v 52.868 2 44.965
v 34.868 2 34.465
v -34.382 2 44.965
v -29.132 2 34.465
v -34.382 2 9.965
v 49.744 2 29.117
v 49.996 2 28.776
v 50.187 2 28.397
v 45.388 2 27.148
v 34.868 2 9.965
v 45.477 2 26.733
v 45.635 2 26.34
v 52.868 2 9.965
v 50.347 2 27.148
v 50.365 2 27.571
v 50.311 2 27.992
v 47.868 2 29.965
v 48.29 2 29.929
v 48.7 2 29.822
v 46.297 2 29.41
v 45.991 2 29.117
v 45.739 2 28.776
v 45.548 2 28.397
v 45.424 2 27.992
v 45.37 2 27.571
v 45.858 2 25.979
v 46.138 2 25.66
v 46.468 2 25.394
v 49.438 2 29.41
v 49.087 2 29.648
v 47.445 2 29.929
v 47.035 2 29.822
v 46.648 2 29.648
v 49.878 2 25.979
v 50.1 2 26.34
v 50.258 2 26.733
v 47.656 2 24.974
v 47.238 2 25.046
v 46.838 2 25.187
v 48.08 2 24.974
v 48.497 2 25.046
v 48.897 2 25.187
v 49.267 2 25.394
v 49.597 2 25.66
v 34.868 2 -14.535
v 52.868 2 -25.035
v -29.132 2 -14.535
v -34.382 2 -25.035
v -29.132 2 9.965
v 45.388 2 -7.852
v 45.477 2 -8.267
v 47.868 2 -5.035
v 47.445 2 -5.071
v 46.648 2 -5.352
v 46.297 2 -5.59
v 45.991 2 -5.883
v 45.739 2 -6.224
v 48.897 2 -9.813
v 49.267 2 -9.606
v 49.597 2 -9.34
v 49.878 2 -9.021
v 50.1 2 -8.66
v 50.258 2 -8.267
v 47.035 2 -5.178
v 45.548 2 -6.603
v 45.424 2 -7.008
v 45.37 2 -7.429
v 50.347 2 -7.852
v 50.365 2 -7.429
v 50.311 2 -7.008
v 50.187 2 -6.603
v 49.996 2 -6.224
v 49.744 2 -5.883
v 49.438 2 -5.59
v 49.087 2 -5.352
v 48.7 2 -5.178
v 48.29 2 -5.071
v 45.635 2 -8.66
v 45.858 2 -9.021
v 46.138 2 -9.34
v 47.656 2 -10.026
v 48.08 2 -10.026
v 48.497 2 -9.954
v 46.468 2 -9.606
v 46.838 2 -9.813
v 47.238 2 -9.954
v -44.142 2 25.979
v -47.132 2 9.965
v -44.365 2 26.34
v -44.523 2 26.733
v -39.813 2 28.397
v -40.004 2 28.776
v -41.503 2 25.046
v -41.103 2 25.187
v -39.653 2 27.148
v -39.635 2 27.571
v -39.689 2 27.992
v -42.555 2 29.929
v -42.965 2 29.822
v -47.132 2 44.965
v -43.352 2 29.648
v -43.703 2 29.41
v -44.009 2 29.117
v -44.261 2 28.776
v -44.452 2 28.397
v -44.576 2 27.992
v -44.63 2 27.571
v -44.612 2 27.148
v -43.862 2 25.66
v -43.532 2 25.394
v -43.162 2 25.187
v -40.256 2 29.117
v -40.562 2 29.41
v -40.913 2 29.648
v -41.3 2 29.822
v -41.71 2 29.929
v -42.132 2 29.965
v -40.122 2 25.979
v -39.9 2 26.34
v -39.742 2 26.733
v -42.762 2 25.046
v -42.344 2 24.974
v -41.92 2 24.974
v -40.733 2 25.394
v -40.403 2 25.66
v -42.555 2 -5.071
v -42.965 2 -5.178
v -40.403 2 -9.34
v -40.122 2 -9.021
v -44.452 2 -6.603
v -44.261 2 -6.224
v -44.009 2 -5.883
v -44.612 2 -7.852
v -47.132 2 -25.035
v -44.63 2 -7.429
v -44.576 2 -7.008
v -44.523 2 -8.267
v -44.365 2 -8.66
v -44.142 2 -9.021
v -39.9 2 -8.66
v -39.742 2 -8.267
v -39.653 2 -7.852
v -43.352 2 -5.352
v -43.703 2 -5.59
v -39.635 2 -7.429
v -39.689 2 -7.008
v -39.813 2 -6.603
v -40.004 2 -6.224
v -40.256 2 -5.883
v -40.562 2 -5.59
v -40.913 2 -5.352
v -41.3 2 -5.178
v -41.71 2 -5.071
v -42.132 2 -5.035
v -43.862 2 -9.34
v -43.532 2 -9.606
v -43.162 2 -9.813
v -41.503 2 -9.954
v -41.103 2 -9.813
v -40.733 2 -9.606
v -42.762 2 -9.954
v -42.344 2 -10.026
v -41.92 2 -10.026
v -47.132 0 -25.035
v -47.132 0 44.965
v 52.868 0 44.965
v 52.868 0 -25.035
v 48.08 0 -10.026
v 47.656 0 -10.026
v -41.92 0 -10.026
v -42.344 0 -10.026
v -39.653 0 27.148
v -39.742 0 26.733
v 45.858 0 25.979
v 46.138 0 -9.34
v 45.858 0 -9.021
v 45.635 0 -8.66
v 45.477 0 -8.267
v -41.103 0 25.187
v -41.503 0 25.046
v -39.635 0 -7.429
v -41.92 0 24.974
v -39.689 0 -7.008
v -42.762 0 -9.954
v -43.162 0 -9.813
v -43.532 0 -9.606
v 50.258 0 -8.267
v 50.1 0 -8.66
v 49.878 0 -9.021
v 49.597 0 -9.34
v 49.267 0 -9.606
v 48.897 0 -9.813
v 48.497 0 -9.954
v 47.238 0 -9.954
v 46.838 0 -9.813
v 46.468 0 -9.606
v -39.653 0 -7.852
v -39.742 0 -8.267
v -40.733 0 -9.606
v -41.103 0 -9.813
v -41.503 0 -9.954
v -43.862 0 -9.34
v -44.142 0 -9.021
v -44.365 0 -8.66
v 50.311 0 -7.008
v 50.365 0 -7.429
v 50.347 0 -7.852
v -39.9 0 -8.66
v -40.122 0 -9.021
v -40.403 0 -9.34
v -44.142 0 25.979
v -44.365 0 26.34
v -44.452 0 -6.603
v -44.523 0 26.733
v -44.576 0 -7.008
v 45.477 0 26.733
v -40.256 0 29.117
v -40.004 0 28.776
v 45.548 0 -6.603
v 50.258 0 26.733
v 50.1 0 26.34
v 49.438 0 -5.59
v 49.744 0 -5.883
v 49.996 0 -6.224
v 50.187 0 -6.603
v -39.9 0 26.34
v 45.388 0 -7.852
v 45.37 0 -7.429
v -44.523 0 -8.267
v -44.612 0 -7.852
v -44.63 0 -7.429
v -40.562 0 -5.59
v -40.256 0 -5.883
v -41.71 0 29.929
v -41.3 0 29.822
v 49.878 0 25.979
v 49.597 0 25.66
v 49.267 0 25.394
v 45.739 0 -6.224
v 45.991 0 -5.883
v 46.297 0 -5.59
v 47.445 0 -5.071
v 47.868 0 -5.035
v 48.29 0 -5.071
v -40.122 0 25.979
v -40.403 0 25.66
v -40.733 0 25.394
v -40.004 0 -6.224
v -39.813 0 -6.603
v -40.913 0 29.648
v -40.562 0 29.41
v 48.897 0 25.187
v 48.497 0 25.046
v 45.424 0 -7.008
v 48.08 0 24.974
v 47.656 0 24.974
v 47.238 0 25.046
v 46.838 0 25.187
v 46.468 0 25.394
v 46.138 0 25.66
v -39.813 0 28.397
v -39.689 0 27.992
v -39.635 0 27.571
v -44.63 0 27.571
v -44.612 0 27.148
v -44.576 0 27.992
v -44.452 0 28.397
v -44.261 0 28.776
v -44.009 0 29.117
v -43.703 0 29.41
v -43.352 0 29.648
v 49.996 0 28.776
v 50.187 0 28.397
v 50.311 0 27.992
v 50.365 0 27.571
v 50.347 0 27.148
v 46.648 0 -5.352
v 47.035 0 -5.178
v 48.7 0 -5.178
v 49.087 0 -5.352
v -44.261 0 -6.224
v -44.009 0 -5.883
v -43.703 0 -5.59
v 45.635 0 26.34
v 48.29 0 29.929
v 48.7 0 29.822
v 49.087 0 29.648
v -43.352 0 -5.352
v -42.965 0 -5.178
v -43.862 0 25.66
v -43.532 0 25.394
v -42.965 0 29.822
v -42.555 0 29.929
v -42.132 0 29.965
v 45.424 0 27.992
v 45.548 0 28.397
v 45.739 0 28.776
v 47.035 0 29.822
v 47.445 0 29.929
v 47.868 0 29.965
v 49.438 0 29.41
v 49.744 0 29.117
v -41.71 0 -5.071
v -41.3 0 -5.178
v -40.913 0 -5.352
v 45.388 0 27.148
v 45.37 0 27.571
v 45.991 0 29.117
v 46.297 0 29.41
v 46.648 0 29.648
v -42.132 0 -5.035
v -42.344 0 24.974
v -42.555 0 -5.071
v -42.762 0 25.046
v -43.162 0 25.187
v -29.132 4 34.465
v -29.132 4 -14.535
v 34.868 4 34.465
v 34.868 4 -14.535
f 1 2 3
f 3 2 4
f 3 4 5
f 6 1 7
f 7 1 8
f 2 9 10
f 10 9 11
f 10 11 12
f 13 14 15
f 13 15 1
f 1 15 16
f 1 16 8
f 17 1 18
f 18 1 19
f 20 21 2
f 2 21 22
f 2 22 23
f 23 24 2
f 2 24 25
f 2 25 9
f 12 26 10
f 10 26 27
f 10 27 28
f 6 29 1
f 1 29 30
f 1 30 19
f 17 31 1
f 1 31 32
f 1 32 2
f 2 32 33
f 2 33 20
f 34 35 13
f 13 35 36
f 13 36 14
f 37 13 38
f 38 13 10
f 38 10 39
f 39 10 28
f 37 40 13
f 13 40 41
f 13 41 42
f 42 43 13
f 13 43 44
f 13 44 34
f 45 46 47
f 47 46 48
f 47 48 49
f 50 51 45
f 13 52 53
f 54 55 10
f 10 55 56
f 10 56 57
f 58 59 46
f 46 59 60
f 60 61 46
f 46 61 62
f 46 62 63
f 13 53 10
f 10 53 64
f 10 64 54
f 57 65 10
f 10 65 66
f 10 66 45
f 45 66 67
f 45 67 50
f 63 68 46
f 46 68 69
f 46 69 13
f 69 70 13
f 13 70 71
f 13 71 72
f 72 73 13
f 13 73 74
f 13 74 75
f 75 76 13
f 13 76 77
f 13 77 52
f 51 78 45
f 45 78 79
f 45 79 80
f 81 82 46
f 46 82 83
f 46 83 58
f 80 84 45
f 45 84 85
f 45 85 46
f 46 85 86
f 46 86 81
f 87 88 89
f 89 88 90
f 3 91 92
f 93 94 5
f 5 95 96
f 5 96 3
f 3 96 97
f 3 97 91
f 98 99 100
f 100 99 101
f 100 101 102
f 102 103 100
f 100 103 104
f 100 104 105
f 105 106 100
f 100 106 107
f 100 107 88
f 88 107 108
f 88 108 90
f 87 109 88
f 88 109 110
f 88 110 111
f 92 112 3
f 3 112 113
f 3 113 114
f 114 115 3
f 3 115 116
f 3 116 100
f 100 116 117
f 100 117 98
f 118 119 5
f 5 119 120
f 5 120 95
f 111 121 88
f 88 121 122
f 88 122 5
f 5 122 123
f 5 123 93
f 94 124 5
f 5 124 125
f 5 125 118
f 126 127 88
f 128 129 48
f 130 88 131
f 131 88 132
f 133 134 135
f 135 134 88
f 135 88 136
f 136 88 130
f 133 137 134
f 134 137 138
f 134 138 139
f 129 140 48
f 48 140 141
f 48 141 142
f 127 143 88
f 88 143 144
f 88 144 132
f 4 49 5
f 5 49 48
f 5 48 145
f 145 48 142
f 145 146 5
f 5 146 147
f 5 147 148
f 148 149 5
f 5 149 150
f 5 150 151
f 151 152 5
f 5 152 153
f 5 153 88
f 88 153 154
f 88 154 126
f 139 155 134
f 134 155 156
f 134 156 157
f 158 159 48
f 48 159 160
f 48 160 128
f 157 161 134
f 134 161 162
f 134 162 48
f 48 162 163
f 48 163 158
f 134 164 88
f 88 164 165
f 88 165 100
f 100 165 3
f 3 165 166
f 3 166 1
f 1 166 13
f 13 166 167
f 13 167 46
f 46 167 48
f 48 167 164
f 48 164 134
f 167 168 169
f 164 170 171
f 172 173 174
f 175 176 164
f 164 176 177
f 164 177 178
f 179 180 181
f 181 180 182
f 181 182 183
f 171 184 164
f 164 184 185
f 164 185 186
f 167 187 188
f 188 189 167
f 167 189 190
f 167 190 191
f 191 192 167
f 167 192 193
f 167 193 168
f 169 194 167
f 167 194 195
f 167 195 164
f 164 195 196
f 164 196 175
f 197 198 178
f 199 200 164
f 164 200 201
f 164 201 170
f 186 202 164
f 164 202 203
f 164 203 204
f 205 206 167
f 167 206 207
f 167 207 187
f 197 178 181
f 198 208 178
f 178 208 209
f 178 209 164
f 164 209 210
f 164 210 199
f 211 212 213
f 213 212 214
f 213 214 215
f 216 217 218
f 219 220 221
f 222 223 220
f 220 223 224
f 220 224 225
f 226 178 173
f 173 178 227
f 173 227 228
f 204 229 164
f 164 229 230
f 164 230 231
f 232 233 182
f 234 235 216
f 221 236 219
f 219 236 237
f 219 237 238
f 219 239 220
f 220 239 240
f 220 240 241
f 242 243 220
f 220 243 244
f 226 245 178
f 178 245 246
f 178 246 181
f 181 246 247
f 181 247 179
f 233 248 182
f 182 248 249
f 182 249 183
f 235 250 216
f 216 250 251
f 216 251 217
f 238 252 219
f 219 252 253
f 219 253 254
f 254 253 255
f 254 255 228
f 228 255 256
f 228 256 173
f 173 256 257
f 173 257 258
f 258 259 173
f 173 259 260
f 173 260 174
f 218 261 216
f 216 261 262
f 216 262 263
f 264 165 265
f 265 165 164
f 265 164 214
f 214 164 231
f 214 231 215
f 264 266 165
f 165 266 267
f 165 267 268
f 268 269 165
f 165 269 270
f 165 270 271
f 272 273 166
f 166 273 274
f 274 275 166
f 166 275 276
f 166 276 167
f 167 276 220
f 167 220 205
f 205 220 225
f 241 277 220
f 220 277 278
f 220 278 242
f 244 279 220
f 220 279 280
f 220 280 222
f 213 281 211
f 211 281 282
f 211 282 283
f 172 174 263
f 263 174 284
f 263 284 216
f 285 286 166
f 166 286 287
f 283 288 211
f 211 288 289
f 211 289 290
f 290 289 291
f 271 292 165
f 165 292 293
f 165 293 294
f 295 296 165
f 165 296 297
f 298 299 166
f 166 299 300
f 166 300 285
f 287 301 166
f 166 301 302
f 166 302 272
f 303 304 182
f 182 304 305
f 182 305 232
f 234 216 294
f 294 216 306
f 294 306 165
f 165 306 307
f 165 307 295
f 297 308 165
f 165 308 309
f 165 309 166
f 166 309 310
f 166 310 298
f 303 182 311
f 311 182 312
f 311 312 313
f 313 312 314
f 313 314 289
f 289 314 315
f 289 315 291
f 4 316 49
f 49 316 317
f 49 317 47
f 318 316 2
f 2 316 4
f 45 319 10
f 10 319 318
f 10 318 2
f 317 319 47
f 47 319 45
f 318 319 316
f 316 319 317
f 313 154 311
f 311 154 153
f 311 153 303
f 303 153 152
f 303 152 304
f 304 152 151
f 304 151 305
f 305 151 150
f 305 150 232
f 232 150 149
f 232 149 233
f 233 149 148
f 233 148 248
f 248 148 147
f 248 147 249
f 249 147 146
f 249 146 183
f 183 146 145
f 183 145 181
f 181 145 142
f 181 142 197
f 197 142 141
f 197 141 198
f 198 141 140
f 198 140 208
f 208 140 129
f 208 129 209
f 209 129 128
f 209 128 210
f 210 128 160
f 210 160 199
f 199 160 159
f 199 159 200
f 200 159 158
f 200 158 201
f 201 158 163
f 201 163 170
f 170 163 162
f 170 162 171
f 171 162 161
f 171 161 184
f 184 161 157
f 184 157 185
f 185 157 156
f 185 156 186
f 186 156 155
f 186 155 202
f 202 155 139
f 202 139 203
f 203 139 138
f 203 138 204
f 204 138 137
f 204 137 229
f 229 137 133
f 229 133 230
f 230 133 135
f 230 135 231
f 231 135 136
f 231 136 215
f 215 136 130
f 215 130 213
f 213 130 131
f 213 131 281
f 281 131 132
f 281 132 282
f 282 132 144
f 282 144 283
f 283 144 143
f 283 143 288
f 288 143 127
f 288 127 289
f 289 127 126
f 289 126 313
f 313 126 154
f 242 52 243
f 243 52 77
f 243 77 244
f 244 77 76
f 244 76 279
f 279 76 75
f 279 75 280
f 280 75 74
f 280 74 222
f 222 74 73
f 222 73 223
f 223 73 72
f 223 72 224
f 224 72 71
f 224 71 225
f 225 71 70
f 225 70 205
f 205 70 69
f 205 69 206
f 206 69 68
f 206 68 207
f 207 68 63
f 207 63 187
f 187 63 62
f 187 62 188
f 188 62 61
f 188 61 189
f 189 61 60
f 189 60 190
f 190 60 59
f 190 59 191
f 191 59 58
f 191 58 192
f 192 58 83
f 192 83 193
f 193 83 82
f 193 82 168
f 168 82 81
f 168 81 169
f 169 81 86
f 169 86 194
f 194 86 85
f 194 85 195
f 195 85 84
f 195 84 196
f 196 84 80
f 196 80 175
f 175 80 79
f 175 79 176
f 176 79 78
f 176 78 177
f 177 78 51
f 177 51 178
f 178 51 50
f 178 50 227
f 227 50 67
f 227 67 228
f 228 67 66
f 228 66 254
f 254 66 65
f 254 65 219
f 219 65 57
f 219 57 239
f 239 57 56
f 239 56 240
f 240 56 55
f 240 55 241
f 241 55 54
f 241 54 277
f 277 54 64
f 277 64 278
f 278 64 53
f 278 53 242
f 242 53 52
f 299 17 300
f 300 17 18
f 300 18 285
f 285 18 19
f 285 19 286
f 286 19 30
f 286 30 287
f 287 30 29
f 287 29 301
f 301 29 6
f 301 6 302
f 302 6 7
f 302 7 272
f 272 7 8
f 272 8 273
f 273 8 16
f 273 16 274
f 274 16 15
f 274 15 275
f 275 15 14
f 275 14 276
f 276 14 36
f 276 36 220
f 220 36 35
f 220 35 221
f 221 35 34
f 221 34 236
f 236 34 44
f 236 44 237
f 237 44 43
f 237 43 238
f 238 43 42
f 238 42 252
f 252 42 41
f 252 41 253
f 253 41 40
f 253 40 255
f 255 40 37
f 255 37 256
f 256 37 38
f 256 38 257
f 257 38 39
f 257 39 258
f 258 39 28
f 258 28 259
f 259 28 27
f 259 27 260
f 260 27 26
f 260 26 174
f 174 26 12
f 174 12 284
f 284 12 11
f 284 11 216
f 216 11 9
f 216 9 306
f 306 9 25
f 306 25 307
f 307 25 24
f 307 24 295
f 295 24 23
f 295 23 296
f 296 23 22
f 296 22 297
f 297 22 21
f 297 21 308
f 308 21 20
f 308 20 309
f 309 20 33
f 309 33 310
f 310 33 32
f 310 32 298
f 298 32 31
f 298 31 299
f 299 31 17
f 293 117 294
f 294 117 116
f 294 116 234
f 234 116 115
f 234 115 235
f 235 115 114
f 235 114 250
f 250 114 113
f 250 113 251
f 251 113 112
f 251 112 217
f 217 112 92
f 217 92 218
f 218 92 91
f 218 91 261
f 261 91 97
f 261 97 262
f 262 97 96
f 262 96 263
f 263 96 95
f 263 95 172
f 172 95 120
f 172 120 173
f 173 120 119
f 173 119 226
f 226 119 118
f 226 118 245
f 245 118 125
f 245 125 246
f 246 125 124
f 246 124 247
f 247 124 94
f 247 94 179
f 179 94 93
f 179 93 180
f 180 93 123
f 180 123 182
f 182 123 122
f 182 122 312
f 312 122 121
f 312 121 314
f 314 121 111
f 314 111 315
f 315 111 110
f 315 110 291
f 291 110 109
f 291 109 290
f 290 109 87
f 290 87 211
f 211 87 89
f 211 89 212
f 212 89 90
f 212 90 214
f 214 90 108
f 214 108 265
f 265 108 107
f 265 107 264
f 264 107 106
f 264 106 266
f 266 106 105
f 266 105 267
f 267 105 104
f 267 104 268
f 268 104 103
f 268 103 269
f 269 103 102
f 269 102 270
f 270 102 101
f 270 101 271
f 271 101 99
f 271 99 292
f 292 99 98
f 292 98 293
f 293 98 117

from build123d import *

# Parameters (mm, degrees)
SKETCH1_W           = 100
SKETCH1_H           = 70
BOSS_EXTRUDE1_DEPTH = 2
SKETCH2_W           = 64
SKETCH2_H           = 49
BOSS_EXTRUDE2_DEPTH = 2
SKETCH3_R           = 2.5
CUT_EXTRUDE1_DEPTH  = 2


with BuildPart() as part:
    # Sketch1 → Boss-Extrude1 (new body)
    with BuildSketch(Plane(origin=(0, 0, 0), x_dir=(1, 0, 0), z_dir=(0, 1, 0))):
        with Locations((2.867538216, -9.96520279)):
            Rectangle(SKETCH1_W, SKETCH1_H)
    extrude(amount=BOSS_EXTRUDE1_DEPTH)

    # Sketch2 → Boss-Extrude2 (add)
    with BuildSketch(Plane(origin=(0, 2, 0), x_dir=(1, 0, 0), z_dir=(0, 1, 0))):
        with Locations((2.867538216, -9.96520279)):
            Rectangle(SKETCH2_W, SKETCH2_H)
    extrude(amount=BOSS_EXTRUDE2_DEPTH)

    # Sketch3 → Cut-Extrude1 (cut)
    with BuildSketch(Plane(origin=(0, 2, 0), x_dir=(1, 0, 0), z_dir=(0, 1, 0))):
        with Locations((-42.132461784, 7.53479721)):
            Circle(SKETCH3_R)
        with Locations((47.867538216, 7.53479721)):
            Circle(SKETCH3_R)
        with Locations((47.867538216, -27.46520279)):
            Circle(SKETCH3_R)
        with Locations((-42.132461784, -27.46520279)):
            Circle(SKETCH3_R)
    extrude(amount=-CUT_EXTRUDE1_DEPTH, mode=Mode.SUBTRACT)


solid = part.part
